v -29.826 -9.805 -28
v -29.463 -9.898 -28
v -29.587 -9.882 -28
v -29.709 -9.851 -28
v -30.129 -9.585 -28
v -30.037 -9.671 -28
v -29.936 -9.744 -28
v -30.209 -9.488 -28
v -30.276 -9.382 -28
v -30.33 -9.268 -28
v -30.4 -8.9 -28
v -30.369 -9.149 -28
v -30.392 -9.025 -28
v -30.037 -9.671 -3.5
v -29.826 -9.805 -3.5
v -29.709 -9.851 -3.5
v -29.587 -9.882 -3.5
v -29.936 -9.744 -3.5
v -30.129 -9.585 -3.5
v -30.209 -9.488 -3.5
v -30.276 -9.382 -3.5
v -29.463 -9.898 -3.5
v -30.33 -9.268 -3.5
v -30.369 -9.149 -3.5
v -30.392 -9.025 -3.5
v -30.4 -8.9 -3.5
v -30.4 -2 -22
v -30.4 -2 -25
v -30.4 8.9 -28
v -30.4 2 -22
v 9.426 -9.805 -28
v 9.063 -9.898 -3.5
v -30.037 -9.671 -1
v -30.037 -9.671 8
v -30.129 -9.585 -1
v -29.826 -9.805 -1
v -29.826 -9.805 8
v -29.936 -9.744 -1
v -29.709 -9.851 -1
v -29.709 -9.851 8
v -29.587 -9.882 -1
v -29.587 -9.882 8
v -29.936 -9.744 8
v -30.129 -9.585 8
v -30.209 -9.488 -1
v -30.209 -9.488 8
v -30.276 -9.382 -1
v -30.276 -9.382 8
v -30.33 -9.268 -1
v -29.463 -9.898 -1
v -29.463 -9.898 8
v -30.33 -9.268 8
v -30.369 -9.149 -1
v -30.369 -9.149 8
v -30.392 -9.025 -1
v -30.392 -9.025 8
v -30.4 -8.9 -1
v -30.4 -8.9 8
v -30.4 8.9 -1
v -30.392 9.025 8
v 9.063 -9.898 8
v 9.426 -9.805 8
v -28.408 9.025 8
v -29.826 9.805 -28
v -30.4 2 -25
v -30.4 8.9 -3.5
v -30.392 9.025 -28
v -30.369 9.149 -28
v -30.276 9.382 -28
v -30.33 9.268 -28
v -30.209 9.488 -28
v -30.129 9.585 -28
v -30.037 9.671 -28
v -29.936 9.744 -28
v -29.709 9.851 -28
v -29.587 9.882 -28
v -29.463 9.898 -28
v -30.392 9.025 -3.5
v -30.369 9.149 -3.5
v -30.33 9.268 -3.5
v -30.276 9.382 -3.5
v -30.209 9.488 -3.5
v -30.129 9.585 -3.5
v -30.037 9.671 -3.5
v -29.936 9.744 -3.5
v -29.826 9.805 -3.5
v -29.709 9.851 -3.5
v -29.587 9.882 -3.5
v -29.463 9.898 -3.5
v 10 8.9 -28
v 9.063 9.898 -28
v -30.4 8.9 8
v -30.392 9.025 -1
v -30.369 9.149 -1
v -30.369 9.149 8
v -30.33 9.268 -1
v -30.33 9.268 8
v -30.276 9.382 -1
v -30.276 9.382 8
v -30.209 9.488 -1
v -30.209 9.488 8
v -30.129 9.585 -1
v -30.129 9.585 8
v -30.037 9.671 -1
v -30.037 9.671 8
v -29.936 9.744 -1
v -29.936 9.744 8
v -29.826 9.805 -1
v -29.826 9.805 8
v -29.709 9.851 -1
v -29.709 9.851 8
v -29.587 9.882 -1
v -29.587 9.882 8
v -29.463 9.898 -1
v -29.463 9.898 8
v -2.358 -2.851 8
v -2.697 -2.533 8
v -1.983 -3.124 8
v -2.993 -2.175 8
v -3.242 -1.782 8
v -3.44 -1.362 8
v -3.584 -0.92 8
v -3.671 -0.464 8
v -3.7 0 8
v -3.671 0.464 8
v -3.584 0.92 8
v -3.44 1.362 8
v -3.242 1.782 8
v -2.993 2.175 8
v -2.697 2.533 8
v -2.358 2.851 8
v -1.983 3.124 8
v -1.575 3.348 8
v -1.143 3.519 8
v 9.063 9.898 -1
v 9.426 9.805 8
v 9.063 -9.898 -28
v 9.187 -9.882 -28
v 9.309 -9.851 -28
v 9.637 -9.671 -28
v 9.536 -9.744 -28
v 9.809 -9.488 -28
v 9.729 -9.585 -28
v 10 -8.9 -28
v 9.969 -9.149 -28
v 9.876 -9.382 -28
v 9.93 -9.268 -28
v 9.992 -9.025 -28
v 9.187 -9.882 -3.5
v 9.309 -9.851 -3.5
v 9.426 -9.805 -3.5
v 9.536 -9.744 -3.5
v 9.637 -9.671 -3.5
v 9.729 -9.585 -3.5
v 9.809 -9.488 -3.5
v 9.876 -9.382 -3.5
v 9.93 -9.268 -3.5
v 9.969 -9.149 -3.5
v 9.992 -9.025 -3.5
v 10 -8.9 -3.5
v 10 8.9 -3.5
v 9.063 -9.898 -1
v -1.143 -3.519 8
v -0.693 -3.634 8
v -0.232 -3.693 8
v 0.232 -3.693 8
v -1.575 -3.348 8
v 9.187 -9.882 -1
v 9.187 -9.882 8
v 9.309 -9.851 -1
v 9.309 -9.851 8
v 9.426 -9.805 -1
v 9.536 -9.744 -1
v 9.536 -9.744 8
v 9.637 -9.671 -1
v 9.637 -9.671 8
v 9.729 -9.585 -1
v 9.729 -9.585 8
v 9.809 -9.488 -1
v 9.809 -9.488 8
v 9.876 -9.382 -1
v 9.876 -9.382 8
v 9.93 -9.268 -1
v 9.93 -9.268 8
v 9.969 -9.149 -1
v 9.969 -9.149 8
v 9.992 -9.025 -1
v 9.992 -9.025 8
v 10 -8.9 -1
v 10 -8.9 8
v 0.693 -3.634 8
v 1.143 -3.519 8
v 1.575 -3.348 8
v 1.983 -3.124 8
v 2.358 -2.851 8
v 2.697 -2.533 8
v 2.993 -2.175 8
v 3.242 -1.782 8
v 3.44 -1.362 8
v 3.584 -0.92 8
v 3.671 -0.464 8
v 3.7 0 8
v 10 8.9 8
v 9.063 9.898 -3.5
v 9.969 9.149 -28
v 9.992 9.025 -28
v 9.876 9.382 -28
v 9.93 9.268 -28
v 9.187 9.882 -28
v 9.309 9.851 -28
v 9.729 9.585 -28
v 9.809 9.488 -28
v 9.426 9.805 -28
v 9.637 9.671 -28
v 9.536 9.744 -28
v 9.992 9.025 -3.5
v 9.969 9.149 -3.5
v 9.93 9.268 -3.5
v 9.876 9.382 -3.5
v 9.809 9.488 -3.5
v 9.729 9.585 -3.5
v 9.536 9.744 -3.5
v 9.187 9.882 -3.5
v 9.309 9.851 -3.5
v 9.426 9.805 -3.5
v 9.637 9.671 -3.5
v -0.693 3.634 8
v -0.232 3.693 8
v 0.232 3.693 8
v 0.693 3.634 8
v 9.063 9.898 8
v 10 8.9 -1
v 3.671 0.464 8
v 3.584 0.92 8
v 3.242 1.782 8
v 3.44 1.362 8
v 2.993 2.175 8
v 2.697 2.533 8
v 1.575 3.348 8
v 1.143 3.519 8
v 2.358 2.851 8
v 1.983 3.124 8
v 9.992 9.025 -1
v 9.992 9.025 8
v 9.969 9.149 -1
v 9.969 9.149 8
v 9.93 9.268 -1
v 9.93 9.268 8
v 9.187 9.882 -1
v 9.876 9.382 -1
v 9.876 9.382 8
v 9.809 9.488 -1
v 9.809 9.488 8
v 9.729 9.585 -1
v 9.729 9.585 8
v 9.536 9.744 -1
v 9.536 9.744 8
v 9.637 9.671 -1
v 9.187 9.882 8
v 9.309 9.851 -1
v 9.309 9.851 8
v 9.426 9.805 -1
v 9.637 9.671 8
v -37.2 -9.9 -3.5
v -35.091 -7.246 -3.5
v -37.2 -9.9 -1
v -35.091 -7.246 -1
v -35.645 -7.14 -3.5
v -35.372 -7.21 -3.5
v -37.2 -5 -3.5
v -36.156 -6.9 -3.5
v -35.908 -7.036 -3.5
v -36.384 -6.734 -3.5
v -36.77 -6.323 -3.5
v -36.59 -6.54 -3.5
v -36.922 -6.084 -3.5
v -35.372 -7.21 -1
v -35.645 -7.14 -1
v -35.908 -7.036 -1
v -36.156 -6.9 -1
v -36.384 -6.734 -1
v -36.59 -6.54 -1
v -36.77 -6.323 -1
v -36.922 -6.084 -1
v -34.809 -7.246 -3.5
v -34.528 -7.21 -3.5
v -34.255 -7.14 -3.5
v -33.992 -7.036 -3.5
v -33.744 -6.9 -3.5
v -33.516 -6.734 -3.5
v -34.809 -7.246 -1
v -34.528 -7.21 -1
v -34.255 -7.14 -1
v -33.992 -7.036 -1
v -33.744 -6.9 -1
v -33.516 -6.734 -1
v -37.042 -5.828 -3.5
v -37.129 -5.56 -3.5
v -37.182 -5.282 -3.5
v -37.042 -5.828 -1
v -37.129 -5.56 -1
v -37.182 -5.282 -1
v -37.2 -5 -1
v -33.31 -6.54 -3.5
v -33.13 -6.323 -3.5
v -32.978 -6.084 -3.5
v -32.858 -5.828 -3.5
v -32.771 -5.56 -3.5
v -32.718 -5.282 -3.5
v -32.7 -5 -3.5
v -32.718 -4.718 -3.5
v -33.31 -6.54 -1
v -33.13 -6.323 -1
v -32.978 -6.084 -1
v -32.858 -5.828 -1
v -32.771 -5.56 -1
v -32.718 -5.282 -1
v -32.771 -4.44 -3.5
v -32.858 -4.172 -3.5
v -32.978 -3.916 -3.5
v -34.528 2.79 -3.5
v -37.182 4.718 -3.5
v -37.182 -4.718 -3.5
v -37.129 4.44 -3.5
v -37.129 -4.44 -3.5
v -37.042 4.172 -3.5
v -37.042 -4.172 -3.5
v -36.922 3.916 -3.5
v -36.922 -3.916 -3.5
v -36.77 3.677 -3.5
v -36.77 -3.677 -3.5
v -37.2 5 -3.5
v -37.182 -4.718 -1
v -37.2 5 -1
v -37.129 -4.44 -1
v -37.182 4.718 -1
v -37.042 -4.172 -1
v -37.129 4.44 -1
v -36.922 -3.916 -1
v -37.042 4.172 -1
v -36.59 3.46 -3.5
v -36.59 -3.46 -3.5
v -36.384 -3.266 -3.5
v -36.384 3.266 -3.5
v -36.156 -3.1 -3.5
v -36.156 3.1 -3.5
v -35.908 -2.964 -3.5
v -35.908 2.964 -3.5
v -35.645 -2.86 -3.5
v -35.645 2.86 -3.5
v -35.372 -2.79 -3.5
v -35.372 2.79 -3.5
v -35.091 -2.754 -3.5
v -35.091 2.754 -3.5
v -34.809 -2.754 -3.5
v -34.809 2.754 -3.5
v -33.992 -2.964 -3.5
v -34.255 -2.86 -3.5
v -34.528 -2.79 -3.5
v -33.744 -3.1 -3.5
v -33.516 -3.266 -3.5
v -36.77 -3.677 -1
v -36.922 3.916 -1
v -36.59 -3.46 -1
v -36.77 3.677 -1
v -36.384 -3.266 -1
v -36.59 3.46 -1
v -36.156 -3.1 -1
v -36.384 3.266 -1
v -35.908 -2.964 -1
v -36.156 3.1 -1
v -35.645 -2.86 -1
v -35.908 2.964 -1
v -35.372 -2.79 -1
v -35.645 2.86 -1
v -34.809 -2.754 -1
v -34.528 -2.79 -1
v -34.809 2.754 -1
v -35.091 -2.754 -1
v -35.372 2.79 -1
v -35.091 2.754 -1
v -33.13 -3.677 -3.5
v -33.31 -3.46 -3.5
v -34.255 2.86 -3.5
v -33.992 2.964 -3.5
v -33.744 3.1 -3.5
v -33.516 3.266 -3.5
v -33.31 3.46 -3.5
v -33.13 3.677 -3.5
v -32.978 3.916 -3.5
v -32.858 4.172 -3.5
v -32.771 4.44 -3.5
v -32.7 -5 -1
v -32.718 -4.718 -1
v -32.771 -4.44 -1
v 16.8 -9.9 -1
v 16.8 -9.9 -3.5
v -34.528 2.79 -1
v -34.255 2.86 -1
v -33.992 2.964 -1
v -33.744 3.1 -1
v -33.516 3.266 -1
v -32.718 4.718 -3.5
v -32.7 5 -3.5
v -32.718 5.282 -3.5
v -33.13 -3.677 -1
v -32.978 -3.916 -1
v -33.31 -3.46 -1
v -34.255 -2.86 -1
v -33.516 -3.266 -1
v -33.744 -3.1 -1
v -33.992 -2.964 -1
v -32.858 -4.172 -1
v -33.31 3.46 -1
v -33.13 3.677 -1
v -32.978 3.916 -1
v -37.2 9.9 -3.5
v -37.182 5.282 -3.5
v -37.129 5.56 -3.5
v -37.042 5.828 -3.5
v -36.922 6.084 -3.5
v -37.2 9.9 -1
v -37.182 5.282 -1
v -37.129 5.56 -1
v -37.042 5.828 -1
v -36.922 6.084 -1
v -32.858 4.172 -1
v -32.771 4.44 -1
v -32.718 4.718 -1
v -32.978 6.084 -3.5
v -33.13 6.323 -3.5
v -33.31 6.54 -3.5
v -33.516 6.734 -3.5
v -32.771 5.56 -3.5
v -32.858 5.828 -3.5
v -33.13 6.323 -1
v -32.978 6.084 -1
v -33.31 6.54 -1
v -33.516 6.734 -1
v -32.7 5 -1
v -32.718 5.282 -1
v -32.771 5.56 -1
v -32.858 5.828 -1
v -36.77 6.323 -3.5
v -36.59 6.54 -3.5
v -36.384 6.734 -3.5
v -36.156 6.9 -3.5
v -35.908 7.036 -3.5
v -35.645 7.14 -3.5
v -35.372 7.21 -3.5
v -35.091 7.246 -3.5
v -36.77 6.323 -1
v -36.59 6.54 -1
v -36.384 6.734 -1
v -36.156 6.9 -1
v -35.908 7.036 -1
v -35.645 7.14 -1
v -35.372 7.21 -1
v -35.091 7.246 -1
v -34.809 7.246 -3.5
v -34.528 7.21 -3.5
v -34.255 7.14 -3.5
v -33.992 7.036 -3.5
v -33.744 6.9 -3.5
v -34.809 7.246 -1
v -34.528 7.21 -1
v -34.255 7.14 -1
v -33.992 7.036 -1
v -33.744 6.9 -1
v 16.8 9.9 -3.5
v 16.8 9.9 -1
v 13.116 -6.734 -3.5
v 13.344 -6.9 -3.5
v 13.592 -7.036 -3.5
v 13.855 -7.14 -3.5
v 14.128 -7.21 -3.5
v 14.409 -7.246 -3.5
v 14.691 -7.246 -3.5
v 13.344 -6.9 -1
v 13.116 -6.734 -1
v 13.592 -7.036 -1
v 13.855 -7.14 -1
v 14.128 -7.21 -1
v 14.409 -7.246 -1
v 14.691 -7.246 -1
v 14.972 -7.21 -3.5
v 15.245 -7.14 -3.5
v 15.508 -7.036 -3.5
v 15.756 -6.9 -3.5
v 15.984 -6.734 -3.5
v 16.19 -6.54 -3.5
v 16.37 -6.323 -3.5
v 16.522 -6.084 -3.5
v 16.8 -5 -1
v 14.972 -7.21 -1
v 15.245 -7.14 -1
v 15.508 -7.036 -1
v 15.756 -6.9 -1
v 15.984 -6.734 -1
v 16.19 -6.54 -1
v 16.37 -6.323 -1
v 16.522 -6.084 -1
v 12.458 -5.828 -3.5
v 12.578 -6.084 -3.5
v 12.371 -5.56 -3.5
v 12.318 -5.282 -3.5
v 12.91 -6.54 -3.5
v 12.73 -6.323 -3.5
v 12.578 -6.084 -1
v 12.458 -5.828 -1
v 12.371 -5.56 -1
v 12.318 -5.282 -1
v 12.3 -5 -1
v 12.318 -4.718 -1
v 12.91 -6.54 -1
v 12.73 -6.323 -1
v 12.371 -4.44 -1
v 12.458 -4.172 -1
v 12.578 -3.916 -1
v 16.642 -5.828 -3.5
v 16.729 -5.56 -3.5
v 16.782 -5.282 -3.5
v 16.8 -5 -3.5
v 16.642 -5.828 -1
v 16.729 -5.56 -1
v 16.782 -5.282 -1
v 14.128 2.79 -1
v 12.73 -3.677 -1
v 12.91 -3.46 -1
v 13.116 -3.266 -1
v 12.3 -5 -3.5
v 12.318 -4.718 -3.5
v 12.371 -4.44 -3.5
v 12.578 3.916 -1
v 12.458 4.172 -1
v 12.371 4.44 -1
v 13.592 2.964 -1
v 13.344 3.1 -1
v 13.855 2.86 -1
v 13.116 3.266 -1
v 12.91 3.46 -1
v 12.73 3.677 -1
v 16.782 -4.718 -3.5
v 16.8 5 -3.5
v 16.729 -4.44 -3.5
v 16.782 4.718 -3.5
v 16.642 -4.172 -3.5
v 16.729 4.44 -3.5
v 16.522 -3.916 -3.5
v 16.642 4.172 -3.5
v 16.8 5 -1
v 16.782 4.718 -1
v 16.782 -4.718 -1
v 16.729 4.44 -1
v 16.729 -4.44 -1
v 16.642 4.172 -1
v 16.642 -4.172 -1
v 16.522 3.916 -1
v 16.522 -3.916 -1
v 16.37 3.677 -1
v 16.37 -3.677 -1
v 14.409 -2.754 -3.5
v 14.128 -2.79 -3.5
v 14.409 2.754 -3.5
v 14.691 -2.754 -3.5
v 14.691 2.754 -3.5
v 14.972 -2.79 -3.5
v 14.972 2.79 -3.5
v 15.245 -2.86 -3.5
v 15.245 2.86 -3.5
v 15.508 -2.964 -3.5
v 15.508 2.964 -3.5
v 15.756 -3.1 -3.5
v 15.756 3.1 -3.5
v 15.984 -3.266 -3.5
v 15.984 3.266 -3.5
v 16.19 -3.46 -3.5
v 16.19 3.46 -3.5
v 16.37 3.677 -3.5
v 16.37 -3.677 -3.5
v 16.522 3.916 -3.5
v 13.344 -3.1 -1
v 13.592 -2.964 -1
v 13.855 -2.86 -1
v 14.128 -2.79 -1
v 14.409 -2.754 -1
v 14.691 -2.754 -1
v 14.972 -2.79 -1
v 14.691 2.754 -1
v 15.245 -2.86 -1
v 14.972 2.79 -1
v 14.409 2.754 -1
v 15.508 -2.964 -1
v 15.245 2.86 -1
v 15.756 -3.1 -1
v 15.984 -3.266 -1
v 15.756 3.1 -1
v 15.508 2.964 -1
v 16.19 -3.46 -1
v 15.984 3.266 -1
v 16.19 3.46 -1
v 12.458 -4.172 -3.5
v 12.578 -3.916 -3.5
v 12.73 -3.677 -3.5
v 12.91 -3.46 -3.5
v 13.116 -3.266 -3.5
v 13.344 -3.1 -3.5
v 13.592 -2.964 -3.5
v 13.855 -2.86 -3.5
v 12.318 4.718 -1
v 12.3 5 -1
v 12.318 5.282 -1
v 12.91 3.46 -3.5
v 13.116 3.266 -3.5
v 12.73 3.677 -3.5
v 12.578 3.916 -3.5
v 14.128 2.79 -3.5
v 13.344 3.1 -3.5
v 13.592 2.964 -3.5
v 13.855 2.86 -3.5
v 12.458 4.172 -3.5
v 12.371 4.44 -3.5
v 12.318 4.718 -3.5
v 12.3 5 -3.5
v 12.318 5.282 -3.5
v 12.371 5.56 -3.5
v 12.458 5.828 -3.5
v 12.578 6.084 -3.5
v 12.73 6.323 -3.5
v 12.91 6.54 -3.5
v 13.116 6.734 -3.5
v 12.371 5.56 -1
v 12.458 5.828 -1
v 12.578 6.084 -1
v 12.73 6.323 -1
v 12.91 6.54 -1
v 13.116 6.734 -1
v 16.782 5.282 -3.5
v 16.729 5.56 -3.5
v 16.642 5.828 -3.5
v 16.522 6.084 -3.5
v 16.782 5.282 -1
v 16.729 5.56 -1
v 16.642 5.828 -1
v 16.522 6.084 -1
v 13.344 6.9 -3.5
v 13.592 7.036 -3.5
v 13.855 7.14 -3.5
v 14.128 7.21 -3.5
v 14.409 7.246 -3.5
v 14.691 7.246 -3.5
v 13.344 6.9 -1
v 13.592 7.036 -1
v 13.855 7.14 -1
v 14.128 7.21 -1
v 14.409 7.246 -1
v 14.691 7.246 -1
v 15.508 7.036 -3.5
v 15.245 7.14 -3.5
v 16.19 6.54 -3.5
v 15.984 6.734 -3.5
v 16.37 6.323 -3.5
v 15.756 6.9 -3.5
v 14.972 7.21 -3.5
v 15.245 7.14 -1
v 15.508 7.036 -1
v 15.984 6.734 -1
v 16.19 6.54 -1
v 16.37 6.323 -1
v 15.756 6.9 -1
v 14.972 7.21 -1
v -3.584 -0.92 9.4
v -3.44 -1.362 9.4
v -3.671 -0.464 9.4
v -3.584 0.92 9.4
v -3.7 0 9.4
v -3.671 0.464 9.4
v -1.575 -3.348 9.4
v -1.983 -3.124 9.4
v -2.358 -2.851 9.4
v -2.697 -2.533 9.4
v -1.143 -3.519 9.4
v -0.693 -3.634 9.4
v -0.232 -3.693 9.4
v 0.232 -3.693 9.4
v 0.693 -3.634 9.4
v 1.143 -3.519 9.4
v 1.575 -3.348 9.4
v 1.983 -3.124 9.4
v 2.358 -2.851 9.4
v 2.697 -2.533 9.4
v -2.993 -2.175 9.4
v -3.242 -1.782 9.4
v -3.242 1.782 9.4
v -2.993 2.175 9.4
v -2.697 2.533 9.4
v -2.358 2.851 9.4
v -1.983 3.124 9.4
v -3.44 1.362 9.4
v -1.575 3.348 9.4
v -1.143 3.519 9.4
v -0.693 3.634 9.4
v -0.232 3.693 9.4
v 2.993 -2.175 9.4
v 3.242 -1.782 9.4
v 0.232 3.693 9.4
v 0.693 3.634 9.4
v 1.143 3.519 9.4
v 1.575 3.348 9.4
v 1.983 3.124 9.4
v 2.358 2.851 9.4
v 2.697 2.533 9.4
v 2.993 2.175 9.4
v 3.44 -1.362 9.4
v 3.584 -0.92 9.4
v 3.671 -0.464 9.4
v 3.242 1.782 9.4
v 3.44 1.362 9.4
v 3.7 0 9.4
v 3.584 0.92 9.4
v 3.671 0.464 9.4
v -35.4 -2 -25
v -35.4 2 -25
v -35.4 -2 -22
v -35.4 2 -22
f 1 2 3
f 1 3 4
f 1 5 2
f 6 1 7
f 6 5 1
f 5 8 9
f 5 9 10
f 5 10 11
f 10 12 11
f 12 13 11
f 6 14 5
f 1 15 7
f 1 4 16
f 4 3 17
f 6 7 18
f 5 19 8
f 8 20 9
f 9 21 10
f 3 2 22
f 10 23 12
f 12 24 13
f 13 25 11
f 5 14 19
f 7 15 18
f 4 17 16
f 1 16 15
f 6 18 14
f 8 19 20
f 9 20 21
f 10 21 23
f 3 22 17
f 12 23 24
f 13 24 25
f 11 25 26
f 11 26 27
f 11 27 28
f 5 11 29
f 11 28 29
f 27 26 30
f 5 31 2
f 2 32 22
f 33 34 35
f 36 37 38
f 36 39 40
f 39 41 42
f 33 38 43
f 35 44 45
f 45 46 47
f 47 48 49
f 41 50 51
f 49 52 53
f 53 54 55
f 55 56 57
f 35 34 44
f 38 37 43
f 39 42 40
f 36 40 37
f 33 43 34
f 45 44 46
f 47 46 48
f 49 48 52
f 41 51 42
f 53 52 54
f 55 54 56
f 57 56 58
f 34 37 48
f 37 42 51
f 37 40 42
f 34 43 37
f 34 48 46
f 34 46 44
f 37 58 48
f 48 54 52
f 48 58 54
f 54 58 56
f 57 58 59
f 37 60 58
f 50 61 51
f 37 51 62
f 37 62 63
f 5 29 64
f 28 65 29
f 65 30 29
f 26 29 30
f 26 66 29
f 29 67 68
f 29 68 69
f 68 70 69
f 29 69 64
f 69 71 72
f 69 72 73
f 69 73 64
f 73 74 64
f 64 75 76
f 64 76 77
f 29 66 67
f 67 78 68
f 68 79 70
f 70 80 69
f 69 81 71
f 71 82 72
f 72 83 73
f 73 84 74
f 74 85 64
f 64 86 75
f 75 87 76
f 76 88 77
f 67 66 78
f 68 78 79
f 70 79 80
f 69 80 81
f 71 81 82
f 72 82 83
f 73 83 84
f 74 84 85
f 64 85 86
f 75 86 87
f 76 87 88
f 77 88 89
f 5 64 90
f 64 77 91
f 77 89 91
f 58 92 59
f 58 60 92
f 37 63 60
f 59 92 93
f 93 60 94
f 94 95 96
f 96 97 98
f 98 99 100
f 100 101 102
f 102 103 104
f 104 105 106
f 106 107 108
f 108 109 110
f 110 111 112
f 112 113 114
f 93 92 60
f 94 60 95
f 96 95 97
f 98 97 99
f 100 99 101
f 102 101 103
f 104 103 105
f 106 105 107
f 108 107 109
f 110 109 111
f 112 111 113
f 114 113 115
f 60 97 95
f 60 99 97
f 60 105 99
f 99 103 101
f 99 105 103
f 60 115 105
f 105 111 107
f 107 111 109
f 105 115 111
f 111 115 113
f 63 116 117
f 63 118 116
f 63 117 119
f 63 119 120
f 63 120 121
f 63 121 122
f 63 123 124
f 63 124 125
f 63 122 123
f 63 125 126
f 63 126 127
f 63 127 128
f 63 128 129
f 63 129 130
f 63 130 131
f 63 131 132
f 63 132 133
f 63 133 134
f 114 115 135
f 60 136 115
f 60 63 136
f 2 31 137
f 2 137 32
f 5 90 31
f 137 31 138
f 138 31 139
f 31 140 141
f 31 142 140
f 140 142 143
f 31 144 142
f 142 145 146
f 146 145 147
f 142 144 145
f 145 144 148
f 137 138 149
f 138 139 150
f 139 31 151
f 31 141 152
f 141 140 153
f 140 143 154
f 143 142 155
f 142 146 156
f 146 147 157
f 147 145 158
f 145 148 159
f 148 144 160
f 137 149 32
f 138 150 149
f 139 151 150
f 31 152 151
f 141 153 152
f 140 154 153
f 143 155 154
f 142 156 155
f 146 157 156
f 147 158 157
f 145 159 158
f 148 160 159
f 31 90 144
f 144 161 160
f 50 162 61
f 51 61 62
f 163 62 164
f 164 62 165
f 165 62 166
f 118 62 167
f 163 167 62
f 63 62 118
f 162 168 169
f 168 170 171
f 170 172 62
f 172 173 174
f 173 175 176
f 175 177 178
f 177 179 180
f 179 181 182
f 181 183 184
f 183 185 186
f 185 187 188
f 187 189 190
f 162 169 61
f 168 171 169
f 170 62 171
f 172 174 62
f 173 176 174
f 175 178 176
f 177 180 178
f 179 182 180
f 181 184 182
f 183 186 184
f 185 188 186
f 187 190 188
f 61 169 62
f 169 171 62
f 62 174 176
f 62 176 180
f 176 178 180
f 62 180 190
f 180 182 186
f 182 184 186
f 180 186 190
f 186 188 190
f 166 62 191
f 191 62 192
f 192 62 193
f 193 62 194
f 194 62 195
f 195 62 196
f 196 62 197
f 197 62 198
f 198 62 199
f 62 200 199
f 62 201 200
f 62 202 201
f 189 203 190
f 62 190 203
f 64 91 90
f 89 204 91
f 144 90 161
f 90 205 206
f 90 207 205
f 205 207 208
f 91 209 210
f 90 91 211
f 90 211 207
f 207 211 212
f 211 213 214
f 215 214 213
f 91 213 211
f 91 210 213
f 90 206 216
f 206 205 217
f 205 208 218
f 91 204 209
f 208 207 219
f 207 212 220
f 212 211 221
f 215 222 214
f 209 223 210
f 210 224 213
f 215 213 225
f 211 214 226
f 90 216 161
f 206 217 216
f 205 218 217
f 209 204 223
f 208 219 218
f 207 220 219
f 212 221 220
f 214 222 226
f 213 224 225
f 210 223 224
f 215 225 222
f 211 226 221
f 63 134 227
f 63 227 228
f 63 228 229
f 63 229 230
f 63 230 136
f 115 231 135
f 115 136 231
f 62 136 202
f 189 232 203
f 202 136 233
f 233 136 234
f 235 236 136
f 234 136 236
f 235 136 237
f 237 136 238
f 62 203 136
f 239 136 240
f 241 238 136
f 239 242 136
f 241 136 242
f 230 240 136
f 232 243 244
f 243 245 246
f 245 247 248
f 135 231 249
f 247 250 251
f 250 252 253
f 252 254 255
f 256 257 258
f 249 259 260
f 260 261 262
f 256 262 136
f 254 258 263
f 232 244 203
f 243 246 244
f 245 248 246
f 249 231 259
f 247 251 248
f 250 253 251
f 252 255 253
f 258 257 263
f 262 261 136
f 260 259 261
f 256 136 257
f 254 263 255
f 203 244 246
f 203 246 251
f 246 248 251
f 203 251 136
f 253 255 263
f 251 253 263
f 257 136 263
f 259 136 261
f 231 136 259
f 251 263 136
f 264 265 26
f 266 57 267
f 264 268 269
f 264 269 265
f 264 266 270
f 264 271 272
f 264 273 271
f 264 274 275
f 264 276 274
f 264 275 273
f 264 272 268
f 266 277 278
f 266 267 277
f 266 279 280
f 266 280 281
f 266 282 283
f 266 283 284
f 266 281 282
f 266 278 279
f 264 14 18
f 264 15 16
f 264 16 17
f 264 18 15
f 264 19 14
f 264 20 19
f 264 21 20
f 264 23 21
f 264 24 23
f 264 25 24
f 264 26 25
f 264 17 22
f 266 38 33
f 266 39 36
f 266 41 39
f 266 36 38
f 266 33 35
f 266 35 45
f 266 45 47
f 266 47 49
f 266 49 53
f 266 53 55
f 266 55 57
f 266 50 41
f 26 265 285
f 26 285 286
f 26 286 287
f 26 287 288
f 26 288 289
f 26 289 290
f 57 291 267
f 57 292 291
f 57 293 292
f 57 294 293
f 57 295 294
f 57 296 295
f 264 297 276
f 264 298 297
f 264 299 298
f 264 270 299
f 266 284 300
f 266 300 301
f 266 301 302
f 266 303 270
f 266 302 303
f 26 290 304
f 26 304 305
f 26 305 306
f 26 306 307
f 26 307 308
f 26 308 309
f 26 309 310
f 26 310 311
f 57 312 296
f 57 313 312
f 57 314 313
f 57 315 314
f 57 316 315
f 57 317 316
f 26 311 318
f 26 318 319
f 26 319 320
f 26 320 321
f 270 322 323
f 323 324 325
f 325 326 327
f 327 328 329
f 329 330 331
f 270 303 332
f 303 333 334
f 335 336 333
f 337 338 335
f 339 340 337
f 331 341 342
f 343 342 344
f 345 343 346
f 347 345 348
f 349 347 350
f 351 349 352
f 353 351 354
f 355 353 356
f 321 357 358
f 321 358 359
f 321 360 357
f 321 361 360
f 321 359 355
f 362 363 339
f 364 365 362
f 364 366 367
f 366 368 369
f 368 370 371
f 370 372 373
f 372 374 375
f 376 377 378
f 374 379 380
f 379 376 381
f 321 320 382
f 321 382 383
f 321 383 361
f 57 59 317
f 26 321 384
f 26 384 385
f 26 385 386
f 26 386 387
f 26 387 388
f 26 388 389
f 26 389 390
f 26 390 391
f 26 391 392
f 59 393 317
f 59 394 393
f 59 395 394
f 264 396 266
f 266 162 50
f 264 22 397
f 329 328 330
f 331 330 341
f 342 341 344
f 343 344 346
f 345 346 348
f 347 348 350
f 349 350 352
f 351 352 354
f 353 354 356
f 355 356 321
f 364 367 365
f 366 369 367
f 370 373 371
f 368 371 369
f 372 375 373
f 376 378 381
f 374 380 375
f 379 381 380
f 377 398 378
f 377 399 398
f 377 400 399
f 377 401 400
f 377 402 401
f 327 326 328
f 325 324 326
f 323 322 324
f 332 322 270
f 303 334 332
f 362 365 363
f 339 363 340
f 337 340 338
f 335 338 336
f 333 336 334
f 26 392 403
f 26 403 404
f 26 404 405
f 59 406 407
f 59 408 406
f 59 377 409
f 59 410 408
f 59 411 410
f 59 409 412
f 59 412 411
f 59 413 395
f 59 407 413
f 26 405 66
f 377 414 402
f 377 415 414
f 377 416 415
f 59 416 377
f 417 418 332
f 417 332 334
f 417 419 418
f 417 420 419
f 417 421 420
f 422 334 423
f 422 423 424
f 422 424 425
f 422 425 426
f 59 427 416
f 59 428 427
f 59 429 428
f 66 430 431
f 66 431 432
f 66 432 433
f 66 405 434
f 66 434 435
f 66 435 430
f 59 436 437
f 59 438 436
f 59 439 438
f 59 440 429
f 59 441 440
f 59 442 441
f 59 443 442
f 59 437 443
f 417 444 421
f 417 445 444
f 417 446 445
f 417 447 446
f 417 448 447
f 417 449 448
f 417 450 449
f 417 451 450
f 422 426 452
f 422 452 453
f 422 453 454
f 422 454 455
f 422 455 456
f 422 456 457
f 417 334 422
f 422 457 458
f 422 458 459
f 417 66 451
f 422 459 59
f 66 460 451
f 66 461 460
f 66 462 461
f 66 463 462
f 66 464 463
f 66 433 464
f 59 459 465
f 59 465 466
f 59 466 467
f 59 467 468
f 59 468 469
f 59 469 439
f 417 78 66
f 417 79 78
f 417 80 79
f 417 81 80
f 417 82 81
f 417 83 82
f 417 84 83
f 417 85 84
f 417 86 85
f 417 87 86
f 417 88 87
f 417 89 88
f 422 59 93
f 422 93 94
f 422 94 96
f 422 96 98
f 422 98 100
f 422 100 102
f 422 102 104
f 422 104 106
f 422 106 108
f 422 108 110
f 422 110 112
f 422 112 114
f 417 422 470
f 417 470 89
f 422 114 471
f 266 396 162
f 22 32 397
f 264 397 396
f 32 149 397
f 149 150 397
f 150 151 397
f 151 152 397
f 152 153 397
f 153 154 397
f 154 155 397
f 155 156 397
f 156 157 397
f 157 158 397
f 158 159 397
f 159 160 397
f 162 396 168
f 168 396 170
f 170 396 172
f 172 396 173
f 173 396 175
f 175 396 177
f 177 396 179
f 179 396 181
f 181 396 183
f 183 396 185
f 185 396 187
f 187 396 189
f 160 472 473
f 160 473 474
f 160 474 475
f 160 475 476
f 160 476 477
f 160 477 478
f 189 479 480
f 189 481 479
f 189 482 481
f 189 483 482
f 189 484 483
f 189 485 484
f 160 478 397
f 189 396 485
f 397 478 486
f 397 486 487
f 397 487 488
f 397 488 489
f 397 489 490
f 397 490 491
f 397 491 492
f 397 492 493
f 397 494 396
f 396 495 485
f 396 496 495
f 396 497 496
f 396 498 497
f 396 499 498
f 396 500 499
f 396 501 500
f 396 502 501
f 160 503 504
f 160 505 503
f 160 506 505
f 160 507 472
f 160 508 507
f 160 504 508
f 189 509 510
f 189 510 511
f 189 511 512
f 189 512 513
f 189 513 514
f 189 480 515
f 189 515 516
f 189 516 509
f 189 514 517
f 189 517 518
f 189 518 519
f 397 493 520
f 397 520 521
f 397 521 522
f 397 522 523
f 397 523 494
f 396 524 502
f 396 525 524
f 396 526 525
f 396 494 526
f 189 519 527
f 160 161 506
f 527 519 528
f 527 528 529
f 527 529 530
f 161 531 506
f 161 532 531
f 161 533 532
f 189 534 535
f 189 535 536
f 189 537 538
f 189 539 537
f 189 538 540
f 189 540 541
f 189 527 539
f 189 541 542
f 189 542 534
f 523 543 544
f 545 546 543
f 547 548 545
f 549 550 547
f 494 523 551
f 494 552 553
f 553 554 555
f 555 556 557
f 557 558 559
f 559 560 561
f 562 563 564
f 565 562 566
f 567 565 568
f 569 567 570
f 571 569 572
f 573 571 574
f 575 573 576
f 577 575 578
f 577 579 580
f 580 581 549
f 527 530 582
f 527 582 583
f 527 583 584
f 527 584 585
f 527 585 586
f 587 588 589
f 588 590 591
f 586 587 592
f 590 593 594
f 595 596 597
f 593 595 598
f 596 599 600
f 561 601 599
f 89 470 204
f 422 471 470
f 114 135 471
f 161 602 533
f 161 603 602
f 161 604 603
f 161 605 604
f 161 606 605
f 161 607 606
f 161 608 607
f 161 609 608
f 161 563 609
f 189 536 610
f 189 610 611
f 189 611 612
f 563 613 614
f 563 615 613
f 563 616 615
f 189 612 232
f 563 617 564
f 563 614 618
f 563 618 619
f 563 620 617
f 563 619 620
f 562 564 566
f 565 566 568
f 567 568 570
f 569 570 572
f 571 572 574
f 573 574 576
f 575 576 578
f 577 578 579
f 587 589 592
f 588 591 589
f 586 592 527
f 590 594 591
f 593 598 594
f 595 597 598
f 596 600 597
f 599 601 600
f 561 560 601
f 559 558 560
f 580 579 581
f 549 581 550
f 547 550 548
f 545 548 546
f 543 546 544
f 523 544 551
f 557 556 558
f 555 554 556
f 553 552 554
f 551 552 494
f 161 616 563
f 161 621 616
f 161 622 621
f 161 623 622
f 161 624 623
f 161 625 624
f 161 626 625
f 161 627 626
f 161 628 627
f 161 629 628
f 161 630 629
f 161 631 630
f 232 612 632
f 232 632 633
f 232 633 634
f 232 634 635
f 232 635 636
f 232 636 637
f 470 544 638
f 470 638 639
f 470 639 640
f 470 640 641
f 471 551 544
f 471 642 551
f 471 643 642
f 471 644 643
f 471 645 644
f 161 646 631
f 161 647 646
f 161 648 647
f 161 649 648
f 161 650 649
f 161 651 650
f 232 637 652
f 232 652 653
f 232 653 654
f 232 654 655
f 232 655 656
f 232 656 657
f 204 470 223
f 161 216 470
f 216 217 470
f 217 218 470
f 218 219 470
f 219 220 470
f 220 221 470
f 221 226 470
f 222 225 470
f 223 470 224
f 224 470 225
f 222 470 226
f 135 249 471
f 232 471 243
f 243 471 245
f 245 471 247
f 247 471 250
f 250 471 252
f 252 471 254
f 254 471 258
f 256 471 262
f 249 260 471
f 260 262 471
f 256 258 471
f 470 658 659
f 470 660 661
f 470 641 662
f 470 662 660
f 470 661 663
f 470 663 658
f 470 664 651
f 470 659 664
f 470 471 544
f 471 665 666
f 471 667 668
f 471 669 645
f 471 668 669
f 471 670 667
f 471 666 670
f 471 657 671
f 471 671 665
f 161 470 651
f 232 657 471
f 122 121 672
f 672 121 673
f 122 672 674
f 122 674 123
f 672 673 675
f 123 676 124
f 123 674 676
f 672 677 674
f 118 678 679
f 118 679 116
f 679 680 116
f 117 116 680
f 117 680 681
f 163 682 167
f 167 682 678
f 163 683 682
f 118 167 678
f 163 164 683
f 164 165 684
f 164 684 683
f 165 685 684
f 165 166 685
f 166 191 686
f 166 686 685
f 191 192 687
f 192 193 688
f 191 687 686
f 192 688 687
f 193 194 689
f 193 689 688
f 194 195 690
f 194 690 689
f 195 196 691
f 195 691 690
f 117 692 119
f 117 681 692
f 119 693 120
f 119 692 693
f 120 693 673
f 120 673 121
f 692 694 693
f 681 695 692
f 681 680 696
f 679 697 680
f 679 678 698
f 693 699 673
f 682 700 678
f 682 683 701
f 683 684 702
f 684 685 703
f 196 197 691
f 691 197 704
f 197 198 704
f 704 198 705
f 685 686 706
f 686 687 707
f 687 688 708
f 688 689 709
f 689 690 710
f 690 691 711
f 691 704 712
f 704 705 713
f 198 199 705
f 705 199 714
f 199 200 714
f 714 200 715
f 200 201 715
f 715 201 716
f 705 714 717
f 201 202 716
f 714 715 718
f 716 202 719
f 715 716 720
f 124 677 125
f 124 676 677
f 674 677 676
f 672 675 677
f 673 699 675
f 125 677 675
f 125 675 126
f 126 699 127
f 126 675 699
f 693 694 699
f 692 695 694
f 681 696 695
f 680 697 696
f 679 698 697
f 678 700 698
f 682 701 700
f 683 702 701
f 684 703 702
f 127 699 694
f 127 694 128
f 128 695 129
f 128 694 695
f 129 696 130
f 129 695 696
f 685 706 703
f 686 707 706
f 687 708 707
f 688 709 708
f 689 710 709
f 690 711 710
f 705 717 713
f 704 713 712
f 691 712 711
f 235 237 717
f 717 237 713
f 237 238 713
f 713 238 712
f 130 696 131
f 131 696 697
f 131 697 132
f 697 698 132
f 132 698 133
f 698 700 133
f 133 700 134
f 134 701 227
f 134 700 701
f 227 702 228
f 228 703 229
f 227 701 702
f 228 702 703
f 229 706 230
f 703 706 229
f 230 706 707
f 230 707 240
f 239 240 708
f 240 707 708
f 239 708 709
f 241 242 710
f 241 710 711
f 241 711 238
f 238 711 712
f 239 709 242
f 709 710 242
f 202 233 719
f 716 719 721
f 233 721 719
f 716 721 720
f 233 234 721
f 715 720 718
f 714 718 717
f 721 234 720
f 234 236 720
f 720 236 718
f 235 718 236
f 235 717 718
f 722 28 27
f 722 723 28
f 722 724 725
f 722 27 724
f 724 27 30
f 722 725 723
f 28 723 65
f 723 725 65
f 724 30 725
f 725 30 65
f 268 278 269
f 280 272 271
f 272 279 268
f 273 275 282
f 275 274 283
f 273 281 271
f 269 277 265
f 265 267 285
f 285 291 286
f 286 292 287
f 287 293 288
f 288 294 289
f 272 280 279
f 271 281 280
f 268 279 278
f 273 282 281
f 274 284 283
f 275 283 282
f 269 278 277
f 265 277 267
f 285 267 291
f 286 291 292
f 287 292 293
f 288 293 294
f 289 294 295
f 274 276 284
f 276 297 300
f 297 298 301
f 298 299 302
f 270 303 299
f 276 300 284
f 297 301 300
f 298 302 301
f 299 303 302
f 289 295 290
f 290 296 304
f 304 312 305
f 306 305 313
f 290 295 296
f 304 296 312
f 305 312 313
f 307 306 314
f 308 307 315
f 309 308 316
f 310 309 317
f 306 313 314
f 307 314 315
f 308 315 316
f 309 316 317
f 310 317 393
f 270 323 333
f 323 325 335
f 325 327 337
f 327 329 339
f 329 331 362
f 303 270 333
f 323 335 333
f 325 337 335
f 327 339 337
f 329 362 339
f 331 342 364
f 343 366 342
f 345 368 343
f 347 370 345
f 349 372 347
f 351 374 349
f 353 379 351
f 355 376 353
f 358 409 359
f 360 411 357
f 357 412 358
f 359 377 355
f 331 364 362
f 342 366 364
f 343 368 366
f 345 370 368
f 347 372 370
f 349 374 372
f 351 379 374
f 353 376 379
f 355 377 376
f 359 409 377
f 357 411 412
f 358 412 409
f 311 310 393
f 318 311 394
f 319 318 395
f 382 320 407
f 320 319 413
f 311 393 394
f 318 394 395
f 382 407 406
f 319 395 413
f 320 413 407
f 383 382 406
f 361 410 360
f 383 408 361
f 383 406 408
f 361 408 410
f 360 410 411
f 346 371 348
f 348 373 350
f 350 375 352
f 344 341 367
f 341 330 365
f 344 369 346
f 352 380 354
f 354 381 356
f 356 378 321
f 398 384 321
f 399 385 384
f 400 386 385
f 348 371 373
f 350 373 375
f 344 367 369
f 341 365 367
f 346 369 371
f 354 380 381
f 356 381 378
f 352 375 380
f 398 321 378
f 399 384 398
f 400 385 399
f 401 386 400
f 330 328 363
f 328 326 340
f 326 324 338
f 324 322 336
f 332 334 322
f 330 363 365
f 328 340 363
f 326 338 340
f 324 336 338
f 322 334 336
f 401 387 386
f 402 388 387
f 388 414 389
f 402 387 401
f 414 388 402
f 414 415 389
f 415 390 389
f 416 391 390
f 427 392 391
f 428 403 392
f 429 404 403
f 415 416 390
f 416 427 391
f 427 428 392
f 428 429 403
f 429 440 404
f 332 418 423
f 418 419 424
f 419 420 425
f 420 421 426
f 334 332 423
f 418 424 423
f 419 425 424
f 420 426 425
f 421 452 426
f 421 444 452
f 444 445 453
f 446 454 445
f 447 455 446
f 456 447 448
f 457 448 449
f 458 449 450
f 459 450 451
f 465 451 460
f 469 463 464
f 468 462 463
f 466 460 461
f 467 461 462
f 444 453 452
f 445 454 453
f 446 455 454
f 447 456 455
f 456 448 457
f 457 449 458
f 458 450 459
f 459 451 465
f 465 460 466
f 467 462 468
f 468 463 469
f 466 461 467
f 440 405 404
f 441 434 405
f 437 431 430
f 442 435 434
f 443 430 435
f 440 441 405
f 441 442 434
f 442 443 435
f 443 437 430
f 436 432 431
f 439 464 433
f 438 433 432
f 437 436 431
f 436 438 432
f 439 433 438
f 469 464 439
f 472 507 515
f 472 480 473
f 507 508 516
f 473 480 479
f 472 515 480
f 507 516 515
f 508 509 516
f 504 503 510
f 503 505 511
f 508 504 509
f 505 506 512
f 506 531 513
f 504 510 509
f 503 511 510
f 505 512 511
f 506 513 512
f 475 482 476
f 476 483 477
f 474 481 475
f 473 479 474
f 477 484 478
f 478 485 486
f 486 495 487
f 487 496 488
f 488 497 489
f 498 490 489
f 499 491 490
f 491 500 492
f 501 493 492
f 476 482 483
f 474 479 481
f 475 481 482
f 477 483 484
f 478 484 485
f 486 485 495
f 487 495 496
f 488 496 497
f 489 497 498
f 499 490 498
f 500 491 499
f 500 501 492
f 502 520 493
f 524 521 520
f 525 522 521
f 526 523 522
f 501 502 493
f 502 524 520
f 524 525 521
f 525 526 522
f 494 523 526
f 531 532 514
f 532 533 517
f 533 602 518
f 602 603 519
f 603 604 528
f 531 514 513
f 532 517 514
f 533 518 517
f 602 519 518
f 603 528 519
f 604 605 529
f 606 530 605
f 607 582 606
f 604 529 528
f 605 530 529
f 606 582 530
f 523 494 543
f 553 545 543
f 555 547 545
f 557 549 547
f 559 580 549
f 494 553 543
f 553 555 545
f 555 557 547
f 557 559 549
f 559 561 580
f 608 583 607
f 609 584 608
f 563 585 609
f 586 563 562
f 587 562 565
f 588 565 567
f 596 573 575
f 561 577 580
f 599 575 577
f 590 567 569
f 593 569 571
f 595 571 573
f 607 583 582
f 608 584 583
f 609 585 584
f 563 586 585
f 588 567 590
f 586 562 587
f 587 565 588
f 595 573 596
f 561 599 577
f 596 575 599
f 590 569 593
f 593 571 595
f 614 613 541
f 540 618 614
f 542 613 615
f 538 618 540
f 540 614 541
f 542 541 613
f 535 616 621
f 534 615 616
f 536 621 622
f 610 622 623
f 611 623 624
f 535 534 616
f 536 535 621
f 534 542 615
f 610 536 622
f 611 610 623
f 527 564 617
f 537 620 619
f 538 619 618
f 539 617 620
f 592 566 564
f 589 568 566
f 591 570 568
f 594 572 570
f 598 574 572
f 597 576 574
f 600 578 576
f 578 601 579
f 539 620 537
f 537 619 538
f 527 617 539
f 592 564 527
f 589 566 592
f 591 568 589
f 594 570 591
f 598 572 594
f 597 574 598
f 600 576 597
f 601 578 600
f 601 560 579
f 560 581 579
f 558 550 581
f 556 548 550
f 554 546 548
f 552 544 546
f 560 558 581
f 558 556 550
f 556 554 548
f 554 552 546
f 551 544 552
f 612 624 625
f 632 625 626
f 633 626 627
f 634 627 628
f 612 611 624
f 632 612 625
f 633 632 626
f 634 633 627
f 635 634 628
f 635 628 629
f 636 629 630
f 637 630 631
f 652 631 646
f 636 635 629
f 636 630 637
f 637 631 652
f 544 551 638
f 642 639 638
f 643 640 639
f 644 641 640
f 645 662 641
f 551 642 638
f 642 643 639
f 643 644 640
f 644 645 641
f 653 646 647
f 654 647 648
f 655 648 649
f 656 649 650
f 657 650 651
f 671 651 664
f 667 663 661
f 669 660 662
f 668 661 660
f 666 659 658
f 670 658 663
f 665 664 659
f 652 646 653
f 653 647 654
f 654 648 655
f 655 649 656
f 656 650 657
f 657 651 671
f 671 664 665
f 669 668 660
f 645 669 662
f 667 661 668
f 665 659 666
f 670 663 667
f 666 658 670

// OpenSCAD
$fn = 50;

difference() {
	union() {
		translate(v = [-10.2, 0, -28.0]) {
			hull() {
				translate(v = [-19.2, 8.9, 0]) {
					cylinder(h = 36.0, r = 1);
				}
				translate(v = [19.2, 8.9, 0]) {
					cylinder(h = 36.0, r = 1);
				}
				translate(v = [-19.2, -8.9, 0]) {
					cylinder(h = 36.0, r = 1);
				}
				translate(v = [19.2, -8.9, 0]) {
					cylinder(h = 36.0, r = 1);
				}
			}
		}
		translate(v = [-37.2, -9.9, -3.5]) {
			cube(size = [54.0, 19.8, 2.5]);
		}
		translate(v = [0, 0, 8.0]) {
			cylinder(h = 1.4000000000000004, r = 3.7);
		}
		translate(v = [-35.4, -2.0, -25.0]) {
			cube(size = [6, 4, 3]);
		}
	}
	union() {
		translate(v = [-34.95, -5.0, -5]) {
			cylinder(h = 5, r = 2.25);
		}
		translate(v = [-34.95, 5.0, -5]) {
			cylinder(h = 5, r = 2.25);
		}
		translate(v = [14.55, -5.0, -5]) {
			cylinder(h = 5, r = 2.25);
		}
		translate(v = [14.55, 5.0, -5]) {
			cylinder(h = 5, r = 2.25);
		}
	}
}
